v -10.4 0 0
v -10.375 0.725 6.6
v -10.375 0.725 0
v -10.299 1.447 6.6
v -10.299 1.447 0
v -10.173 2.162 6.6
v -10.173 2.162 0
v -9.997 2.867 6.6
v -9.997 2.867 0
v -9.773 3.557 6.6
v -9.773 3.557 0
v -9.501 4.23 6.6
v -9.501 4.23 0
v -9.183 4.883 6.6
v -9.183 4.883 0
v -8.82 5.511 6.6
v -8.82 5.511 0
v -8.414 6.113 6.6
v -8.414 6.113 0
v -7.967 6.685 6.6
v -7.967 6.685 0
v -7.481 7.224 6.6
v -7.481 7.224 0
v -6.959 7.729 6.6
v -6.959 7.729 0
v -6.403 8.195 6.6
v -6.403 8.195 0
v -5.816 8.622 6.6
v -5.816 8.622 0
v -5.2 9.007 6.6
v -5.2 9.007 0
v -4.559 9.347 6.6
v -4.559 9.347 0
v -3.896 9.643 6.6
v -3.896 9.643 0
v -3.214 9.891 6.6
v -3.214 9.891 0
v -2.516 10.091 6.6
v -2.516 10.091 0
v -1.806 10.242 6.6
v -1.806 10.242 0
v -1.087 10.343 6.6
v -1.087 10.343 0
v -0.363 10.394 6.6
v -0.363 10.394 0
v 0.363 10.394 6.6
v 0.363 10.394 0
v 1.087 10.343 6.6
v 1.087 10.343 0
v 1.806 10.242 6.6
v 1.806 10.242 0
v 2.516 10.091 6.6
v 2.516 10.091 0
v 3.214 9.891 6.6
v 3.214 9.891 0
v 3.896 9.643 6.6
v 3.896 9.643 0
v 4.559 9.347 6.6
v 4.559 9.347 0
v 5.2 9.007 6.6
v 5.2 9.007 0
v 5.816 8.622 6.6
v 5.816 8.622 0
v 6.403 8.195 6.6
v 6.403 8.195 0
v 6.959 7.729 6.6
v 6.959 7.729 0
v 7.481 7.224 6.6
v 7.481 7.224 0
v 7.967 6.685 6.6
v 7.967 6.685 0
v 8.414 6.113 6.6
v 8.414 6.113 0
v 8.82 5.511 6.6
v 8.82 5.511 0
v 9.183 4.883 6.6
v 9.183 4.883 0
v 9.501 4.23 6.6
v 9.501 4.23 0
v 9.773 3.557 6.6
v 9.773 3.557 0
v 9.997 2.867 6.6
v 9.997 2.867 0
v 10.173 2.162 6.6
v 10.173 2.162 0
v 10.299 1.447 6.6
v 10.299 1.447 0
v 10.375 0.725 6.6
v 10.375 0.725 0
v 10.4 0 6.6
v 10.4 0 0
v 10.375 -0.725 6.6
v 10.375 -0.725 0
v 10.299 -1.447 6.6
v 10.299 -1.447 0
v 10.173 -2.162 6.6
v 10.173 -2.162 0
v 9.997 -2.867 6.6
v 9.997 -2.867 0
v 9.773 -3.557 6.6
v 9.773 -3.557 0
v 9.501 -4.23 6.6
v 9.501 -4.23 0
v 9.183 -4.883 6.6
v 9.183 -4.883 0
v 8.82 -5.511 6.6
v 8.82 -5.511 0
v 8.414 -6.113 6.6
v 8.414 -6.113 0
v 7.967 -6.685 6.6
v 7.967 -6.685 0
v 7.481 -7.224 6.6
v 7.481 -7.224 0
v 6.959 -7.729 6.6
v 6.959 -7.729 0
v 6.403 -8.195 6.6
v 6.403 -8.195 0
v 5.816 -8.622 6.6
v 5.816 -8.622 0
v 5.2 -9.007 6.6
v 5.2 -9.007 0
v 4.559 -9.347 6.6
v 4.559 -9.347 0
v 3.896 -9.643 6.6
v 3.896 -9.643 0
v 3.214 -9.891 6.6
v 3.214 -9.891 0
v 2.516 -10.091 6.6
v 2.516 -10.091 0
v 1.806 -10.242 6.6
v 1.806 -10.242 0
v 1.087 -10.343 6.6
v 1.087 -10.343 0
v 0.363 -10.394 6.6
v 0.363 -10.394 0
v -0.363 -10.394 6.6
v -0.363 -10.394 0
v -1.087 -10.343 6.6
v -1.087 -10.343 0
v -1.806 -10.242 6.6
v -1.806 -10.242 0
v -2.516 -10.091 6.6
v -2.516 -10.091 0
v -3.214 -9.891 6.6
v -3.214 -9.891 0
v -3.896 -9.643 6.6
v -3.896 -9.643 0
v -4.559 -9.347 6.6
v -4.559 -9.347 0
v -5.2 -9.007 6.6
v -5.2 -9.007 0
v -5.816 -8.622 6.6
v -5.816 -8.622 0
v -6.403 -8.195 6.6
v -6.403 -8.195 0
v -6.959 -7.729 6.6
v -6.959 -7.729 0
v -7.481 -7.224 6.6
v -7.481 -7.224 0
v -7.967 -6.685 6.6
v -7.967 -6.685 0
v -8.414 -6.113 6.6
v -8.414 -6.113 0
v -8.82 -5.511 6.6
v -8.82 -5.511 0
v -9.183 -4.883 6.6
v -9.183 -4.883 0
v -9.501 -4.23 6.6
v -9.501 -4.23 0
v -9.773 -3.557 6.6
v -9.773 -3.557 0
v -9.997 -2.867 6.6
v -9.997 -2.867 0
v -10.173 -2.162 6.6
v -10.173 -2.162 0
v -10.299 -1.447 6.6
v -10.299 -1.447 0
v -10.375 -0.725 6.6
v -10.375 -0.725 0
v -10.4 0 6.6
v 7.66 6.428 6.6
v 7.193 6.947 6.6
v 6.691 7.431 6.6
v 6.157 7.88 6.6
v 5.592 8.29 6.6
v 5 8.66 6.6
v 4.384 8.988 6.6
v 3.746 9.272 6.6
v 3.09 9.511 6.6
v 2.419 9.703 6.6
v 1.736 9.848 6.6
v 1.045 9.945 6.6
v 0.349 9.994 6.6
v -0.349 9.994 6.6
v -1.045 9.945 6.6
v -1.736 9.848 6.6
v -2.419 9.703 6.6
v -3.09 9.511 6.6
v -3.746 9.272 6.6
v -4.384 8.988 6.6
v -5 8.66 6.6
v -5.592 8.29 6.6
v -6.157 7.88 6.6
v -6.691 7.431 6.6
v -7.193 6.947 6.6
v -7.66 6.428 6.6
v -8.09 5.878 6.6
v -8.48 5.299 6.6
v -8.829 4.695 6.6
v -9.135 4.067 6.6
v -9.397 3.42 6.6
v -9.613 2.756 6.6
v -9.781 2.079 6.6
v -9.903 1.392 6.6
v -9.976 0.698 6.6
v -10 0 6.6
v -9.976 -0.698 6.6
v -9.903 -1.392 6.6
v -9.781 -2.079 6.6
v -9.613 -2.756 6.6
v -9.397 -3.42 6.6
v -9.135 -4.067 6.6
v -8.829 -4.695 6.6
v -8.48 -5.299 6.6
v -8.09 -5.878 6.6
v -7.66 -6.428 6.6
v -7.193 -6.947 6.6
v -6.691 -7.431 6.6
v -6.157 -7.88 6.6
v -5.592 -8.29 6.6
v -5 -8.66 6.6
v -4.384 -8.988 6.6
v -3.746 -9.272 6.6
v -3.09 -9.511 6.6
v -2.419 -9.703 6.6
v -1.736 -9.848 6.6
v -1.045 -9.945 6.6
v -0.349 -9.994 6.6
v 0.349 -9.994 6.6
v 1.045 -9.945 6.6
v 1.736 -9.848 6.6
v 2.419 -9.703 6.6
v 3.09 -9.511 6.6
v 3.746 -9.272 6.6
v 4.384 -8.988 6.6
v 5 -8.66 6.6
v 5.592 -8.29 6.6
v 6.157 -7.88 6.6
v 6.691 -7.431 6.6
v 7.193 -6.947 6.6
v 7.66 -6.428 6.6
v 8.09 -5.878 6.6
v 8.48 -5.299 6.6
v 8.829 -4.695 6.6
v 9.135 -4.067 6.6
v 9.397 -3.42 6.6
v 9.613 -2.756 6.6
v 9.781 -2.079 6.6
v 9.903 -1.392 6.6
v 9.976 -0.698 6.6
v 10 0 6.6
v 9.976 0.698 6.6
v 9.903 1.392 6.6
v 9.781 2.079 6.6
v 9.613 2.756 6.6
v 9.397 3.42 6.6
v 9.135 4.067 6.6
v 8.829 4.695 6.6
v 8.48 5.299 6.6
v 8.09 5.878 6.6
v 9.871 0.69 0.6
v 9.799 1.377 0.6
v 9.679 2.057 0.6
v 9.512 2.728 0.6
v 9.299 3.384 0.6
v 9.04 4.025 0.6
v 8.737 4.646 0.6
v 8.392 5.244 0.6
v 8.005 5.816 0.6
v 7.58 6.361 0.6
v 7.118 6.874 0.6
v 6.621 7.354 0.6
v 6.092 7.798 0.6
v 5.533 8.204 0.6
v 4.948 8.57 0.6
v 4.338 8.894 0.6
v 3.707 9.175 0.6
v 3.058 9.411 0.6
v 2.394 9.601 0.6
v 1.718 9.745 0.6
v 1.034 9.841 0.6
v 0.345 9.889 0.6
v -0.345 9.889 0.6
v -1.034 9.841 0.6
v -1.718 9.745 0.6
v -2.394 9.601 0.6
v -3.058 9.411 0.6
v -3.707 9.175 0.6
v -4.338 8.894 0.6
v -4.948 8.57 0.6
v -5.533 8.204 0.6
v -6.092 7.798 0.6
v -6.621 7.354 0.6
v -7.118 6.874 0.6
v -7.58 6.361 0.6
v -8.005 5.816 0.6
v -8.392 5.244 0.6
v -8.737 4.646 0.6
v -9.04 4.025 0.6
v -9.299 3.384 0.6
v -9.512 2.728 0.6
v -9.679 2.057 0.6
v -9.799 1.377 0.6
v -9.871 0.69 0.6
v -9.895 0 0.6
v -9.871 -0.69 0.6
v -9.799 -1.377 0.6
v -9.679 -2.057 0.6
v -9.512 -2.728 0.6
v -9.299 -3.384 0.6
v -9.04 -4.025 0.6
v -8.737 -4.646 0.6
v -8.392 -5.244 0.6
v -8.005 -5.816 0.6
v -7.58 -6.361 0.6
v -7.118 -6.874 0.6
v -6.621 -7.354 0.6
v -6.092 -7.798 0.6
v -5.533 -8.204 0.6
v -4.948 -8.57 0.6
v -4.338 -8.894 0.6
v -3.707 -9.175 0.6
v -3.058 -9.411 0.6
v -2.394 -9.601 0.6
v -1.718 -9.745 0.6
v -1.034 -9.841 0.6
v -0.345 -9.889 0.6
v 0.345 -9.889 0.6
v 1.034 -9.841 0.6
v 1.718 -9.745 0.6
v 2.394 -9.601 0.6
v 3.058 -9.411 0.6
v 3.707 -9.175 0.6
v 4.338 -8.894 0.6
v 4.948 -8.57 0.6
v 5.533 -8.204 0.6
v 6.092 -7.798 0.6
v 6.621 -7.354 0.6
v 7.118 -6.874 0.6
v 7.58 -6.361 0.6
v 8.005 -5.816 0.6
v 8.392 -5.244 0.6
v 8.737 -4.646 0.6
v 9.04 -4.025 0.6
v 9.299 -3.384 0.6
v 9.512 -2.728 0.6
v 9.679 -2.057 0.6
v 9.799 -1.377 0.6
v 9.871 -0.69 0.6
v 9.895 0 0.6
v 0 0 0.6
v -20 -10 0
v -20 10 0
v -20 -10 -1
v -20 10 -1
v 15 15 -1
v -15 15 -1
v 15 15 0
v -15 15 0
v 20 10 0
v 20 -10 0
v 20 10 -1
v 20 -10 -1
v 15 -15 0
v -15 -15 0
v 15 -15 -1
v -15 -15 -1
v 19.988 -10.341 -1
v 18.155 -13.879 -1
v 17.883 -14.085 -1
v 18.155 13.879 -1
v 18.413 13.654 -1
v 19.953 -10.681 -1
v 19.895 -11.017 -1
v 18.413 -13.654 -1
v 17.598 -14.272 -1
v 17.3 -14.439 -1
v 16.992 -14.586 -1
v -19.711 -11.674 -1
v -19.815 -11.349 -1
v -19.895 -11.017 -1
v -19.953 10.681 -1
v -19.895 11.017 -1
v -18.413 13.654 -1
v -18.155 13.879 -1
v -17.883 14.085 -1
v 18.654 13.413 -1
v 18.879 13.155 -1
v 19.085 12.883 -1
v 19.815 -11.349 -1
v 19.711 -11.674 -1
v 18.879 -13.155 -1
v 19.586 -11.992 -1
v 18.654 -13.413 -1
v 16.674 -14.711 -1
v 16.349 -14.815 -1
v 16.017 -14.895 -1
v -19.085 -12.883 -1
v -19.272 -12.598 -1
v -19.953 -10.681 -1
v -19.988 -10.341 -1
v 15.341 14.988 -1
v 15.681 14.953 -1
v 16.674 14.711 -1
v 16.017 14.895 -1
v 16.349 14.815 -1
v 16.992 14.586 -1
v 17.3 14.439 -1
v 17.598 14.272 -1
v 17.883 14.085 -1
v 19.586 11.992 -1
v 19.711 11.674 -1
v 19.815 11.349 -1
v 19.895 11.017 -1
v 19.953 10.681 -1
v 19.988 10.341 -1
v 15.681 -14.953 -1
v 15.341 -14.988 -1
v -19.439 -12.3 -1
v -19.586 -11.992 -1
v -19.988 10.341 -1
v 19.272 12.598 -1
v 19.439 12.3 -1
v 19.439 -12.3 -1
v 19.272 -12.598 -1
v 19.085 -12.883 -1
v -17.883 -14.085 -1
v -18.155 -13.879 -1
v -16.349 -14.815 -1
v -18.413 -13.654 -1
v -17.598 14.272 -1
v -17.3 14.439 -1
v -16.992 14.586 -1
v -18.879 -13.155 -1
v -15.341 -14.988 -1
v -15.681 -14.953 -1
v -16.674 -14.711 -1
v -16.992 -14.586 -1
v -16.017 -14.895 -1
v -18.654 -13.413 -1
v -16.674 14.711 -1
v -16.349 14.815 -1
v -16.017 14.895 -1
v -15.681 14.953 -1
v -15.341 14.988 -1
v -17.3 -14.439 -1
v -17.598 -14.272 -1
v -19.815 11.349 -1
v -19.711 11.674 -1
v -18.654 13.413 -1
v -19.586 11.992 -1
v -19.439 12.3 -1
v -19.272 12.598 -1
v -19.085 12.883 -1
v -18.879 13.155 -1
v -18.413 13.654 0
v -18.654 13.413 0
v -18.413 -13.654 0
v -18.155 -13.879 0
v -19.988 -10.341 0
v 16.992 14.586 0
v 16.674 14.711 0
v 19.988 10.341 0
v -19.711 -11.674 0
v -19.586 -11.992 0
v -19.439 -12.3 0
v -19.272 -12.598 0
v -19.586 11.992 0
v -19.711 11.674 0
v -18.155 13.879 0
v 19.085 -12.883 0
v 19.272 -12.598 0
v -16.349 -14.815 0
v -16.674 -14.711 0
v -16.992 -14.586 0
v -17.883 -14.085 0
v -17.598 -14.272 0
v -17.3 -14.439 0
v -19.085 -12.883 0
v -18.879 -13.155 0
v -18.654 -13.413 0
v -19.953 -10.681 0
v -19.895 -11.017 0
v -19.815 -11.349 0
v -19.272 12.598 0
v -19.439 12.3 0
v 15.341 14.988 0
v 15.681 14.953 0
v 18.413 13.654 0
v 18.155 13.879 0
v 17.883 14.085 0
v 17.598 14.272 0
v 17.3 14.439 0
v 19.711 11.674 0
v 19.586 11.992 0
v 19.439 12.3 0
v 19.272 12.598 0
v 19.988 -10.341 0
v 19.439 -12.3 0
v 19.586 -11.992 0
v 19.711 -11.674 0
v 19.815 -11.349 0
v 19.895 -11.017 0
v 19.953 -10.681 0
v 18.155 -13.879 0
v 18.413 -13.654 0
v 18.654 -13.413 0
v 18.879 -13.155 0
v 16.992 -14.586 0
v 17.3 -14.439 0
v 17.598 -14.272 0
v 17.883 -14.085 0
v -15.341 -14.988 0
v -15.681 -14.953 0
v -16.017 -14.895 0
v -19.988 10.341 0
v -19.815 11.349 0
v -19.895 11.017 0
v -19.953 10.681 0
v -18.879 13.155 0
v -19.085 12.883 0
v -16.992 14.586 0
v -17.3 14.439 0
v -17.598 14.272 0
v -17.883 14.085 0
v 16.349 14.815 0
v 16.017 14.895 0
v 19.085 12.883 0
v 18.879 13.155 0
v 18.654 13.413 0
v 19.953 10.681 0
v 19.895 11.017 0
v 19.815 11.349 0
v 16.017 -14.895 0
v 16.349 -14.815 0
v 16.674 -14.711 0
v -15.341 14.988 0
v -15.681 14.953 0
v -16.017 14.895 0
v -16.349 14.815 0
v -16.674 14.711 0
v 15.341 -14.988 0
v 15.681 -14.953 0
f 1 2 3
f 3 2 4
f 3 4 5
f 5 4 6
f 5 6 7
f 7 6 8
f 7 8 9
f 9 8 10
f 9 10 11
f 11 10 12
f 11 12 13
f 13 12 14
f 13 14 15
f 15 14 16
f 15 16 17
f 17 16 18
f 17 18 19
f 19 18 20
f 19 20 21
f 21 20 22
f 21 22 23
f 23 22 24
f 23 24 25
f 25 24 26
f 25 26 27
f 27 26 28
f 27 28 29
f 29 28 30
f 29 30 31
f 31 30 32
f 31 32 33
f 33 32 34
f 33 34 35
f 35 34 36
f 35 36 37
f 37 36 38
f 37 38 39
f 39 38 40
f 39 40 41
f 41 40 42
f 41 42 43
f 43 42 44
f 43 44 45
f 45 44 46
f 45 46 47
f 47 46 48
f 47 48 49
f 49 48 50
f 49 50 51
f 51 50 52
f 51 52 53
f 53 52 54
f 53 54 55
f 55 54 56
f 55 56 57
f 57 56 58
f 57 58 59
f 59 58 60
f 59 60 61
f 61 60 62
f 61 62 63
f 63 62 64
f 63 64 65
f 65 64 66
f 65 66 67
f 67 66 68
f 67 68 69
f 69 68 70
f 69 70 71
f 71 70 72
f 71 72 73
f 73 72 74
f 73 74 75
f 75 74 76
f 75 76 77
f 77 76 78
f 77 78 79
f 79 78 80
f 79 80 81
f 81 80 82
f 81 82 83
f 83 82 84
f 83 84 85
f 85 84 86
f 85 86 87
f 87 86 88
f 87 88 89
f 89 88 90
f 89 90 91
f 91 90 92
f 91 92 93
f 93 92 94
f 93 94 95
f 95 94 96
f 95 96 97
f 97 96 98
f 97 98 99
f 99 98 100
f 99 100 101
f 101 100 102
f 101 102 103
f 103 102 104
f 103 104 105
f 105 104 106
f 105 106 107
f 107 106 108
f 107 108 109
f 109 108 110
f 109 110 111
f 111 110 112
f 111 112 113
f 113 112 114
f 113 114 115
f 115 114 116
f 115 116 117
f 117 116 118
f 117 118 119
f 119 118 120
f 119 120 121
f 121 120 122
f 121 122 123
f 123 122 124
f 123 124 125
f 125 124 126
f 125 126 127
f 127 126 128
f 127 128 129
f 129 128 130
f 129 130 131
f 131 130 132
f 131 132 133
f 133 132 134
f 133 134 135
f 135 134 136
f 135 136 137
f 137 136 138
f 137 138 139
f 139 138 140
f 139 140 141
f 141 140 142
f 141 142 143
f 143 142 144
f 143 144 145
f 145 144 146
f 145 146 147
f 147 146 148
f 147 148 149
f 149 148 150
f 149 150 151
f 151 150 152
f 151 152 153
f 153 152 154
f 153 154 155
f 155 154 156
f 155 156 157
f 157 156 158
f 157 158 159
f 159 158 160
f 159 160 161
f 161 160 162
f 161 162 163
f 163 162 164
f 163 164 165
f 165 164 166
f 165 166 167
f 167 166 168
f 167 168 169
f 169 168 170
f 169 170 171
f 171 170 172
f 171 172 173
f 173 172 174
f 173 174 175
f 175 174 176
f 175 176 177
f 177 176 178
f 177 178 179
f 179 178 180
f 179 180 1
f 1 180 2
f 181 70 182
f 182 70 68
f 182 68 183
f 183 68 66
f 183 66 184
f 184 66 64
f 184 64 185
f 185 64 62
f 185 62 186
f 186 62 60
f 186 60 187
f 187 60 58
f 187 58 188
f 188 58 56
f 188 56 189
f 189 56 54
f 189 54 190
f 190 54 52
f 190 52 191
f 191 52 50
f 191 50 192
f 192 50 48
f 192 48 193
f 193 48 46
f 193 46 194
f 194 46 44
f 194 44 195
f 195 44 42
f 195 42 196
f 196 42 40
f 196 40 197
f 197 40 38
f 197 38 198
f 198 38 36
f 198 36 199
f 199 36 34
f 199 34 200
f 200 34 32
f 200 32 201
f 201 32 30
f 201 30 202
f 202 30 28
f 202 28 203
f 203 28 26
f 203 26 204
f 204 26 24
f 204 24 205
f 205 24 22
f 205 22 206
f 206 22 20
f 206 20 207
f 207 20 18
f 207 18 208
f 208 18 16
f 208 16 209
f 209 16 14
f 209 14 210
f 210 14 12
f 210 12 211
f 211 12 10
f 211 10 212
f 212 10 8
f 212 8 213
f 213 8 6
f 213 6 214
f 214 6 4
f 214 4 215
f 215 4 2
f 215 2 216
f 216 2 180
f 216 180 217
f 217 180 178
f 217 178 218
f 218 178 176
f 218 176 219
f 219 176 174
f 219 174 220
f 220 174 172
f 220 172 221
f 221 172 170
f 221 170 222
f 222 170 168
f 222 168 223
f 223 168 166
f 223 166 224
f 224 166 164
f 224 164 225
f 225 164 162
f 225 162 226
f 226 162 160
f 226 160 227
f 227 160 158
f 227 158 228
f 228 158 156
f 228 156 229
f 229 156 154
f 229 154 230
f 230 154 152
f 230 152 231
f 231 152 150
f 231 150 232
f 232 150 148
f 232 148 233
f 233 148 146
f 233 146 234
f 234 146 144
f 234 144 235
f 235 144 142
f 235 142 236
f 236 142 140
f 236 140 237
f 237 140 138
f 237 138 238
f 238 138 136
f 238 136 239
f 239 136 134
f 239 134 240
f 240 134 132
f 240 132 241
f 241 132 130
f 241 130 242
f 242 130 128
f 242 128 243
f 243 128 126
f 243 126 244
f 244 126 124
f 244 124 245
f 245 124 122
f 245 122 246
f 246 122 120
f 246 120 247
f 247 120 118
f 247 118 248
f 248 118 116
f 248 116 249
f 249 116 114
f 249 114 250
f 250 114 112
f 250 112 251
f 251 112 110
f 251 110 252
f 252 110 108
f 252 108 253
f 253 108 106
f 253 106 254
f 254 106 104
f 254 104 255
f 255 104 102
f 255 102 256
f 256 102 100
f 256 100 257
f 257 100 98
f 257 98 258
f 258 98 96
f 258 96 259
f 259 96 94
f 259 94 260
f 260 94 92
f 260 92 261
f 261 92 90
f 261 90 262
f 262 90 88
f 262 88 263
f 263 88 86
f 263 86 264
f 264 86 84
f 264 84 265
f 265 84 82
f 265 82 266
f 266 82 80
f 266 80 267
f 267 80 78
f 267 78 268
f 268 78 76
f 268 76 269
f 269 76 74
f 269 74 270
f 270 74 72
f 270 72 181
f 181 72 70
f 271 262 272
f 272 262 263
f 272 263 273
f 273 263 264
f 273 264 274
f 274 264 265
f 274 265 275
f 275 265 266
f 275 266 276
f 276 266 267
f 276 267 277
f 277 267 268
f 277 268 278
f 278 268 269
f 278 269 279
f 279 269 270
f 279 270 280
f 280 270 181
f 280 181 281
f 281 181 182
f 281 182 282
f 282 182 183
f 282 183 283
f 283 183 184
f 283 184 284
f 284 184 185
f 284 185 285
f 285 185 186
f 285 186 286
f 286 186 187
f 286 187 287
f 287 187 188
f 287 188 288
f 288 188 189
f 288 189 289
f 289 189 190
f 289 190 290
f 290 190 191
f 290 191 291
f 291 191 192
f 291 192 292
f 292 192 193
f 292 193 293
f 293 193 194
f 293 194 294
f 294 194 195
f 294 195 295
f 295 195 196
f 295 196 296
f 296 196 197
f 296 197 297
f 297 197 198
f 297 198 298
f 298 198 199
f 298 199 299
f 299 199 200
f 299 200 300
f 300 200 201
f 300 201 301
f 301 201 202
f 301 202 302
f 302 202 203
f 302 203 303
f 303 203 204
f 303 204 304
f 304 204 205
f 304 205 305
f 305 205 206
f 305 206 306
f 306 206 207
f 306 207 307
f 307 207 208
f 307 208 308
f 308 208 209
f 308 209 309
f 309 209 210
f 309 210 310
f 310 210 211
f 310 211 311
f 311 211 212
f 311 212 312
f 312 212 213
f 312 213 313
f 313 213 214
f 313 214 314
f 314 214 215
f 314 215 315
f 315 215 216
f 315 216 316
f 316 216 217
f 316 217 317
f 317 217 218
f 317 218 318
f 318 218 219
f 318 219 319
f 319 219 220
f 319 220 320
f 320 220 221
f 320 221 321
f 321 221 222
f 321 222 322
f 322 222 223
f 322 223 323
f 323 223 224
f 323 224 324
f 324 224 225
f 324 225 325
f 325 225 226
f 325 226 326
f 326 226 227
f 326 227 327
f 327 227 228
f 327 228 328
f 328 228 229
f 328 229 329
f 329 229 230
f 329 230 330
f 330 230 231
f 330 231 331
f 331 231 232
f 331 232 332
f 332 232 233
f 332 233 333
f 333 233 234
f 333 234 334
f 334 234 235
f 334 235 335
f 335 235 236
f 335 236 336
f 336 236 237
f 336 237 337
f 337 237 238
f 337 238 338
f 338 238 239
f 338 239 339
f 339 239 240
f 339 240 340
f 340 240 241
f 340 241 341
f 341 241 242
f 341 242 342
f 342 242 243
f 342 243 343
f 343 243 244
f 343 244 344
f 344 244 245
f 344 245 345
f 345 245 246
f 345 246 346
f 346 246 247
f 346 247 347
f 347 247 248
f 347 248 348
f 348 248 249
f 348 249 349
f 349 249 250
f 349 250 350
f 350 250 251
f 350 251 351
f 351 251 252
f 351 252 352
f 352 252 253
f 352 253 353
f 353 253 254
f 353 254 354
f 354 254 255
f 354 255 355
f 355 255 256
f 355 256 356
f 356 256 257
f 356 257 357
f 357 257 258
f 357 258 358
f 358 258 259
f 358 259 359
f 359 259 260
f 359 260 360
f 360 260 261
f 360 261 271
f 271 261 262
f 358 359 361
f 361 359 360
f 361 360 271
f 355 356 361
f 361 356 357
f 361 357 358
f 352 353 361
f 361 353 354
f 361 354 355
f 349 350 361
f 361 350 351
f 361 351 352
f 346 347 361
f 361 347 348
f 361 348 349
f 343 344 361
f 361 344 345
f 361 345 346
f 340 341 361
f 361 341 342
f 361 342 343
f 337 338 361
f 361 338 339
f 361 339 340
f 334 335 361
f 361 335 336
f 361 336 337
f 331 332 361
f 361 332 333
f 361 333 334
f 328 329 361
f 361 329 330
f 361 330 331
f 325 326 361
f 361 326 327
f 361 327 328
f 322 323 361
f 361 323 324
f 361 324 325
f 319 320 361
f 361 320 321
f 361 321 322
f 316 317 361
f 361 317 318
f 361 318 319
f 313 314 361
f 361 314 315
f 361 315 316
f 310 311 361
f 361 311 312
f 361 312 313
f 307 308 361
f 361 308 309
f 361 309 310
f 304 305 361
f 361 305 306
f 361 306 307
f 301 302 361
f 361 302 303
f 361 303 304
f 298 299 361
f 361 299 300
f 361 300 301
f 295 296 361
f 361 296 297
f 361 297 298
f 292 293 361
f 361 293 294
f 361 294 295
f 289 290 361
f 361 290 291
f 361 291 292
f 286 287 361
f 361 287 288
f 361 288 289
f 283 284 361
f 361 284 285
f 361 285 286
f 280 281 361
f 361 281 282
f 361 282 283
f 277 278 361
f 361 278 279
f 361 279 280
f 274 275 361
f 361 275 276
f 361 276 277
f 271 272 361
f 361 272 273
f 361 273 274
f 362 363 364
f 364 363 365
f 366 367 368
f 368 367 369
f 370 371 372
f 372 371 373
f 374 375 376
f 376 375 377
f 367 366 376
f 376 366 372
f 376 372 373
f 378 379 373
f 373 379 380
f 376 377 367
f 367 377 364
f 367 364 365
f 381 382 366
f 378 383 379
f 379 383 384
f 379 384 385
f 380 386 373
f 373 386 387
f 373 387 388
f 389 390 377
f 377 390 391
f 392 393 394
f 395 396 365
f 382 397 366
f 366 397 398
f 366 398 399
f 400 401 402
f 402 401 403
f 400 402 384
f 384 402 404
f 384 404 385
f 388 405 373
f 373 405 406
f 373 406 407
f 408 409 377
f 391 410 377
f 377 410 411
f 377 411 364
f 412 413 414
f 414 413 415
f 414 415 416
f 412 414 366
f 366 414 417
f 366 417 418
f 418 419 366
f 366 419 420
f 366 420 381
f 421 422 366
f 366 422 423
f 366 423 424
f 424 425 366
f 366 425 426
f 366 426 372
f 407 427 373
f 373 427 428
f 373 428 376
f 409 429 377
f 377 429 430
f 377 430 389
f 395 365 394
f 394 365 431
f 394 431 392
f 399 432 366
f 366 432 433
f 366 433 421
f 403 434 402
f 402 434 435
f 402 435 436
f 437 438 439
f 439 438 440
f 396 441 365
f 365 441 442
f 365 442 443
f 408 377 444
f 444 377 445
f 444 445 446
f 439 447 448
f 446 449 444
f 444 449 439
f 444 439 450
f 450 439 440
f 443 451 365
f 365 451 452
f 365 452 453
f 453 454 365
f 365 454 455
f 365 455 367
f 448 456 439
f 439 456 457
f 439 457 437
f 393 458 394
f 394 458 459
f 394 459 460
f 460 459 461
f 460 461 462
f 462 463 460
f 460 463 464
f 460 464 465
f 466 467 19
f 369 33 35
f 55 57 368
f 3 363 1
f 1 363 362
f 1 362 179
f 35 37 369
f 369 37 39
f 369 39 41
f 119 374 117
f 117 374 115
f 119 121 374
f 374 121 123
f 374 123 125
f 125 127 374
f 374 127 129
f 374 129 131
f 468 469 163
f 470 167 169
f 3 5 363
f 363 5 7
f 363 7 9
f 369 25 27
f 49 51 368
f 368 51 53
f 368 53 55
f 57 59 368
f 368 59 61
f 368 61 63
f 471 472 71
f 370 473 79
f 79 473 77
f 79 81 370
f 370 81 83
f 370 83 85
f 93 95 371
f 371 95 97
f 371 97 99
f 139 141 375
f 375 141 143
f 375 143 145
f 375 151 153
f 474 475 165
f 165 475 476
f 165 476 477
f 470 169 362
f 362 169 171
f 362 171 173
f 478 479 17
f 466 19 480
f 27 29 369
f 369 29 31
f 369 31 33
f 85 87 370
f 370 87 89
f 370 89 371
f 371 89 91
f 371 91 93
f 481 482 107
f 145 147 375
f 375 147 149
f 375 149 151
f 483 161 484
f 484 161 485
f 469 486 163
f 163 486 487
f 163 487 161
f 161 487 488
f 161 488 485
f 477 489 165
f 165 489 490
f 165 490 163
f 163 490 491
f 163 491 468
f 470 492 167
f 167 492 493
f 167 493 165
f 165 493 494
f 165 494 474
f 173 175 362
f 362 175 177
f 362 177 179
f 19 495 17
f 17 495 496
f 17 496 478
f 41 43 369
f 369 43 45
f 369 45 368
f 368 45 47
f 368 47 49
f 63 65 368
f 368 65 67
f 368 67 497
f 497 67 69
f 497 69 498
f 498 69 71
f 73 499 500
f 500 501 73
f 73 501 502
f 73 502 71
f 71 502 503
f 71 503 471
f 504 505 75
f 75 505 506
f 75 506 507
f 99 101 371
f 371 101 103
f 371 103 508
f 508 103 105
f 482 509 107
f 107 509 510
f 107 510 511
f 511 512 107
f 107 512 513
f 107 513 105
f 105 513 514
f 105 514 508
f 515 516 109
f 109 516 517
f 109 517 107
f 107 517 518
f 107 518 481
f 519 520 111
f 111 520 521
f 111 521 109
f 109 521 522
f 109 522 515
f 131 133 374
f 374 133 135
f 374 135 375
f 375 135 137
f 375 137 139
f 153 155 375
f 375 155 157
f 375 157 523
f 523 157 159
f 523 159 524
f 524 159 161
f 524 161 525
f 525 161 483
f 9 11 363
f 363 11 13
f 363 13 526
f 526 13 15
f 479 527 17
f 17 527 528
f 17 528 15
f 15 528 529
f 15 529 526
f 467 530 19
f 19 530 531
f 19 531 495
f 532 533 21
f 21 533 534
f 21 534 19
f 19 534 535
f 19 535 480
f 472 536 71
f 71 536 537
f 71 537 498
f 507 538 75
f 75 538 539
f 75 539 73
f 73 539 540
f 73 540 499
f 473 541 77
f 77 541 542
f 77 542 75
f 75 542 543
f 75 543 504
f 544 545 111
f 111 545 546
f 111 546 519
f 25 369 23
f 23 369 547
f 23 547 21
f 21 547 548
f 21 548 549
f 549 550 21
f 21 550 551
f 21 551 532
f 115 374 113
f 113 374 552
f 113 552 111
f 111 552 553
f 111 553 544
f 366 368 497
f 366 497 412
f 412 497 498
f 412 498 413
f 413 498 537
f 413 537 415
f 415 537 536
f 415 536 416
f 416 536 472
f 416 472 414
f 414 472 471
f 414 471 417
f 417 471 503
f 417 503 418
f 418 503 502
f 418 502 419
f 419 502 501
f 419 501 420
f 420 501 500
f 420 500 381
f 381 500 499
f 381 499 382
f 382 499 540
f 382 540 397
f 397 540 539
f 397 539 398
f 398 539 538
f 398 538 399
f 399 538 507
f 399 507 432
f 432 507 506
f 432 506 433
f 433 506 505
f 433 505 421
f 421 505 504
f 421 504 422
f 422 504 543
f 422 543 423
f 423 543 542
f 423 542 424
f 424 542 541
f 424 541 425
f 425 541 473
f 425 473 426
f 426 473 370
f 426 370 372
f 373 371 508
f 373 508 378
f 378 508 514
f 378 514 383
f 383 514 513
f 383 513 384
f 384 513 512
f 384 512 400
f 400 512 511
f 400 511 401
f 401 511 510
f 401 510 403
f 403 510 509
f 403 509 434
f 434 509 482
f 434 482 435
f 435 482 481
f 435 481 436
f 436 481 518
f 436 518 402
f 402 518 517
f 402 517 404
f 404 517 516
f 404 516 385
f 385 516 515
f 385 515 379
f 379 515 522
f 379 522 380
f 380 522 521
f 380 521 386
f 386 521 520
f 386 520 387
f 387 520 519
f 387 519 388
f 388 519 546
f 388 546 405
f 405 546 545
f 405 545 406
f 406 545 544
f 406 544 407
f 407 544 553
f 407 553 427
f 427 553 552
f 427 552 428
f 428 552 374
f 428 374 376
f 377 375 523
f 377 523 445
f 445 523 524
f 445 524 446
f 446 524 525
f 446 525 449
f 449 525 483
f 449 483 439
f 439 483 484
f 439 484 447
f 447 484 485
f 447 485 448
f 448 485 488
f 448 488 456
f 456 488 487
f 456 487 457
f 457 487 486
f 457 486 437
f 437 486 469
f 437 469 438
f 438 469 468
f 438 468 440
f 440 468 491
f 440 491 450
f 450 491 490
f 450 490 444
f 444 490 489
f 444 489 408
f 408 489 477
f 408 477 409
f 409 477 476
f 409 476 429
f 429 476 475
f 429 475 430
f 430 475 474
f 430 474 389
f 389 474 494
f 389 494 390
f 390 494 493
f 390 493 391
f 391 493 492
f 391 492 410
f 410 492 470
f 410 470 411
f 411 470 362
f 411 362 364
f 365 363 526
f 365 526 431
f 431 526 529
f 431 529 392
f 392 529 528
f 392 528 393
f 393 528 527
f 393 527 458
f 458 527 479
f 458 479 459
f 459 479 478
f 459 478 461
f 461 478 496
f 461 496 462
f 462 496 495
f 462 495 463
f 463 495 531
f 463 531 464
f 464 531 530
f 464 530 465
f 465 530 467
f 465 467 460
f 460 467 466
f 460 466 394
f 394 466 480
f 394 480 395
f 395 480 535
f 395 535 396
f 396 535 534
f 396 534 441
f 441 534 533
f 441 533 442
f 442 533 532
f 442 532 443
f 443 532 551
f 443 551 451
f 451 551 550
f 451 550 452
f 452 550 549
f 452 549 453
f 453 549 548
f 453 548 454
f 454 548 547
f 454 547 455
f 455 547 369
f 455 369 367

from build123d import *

# Parameters (mm, degrees)
ESQUISSE1_R             = 10.4
BOSS_EXTRU_1_DEPTH      = 6.6
ESQUISSE2_R             = 10
ENL_V_MAT_EXTRU_1_DEPTH = 6
ENL_V_MAT_EXTRU_1_TAPER = 1
ESQUISSE3_W             = 40
ESQUISSE3_H             = 30
BOSS_EXTRU_2_DEPTH      = 1
CONG_1_R                = 5


with BuildPart() as part:
    # Esquisse1 → Boss.-Extru.1 (new body)
    with BuildSketch(Plane.XY):
        Circle(ESQUISSE1_R)
    extrude(amount=BOSS_EXTRU_1_DEPTH)

    # Esquisse2 → Enlèv. mat.-Extru.1 (cut)
    with BuildSketch(Plane.XY.offset(6.6)):
        Circle(ESQUISSE2_R)
    extrude(amount=-ENL_V_MAT_EXTRU_1_DEPTH, taper=ENL_V_MAT_EXTRU_1_TAPER, mode=Mode.SUBTRACT)

    # Esquisse3 → Boss.-Extru.2 (add)
    with BuildSketch(Plane.XY):
        Rectangle(ESQUISSE3_W, ESQUISSE3_H)
    extrude(amount=-BOSS_EXTRU_2_DEPTH)

    # Congé1
    cong_1_edges = [part.edges().sort_by_distance(p)[0] for p in [
        (-20, -15, -0.5),
        (-20, 15, -0.5),
        (20, 15, -0.5),
        (20, -15, -0.5),
    ]]
    fillet(cong_1_edges, radius=CONG_1_R)


solid = part.part
